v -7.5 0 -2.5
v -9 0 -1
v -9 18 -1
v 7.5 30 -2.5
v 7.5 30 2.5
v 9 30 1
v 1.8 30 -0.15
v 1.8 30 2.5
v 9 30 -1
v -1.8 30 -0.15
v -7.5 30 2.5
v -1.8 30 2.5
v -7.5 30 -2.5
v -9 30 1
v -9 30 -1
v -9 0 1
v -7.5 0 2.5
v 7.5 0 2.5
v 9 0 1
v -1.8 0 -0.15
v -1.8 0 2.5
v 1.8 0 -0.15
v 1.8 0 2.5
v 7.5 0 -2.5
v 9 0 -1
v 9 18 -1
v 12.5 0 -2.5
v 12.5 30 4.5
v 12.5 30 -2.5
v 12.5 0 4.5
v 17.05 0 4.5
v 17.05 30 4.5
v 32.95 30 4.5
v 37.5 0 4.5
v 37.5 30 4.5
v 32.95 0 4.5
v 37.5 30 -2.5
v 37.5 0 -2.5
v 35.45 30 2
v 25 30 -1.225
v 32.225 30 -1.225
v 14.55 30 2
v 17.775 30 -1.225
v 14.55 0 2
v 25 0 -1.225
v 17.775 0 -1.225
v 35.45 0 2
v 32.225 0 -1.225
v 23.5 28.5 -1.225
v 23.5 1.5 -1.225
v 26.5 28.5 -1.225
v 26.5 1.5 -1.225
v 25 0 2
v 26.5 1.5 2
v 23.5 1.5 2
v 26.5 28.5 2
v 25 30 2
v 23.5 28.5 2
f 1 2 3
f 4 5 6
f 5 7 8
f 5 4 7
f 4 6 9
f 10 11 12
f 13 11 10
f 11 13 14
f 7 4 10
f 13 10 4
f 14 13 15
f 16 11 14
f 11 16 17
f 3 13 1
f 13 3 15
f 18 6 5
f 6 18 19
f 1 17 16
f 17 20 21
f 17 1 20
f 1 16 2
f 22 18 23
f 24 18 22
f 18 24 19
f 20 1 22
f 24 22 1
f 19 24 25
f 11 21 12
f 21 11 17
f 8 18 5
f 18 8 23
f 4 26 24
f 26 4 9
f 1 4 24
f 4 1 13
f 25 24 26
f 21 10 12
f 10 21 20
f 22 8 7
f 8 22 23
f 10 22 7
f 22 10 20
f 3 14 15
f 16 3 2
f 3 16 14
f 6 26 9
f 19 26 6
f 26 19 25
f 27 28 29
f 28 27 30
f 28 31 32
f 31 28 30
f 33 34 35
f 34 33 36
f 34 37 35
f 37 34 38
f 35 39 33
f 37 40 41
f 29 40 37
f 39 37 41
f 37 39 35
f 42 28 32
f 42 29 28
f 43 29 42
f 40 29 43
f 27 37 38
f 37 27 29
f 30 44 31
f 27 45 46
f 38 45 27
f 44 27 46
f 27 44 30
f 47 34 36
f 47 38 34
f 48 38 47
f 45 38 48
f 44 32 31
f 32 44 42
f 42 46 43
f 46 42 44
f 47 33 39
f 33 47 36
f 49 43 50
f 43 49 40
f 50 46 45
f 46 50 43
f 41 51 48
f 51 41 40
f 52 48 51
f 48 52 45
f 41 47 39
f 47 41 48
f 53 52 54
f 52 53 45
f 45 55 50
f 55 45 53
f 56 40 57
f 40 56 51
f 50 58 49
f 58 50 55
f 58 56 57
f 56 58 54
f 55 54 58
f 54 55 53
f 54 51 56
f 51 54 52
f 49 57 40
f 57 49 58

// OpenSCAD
length=30;
width=20;
height=5;

slop=0.15;

$fn=6;

module _rail(length, width, height) {
    side=sqrt(height*height/2);
    rotate([-90,0,0]) hull() {
        translate([-(width/2),0,0]) rotate([0,0,-45]) cube([side,side,length]);
        translate([width/2-height,0,0]) rotate([0,0,-45]) cube([side,side,length]);
    }
}

module rail(length, width, height) {
    intersection() {
        difference() {
            _rail(length, width, height);
            translate([-(3+4*slop)/2,0,-slop]) cube([3+4*slop, length, height/2+slop]);
        }
        translate([-(width-2)/2,0,-height/2]) cube([width-2, length, height]);
    }
}


module slide() {
    difference() {
        translate([-(width+5)/2,0,-(height)/2]) cube([width+5, length, height+2]);
        translate([0,-1,2]) _rail(length+2, width+6*slop, height+1+3*slop);
    }
    translate([0,length/2,-height/2+1]) rotate([90,0,90]) _rail(height/2+1, length, 3, $fn=30);
}


rail(length,width,height);
translate([25,0,0]) slide();
